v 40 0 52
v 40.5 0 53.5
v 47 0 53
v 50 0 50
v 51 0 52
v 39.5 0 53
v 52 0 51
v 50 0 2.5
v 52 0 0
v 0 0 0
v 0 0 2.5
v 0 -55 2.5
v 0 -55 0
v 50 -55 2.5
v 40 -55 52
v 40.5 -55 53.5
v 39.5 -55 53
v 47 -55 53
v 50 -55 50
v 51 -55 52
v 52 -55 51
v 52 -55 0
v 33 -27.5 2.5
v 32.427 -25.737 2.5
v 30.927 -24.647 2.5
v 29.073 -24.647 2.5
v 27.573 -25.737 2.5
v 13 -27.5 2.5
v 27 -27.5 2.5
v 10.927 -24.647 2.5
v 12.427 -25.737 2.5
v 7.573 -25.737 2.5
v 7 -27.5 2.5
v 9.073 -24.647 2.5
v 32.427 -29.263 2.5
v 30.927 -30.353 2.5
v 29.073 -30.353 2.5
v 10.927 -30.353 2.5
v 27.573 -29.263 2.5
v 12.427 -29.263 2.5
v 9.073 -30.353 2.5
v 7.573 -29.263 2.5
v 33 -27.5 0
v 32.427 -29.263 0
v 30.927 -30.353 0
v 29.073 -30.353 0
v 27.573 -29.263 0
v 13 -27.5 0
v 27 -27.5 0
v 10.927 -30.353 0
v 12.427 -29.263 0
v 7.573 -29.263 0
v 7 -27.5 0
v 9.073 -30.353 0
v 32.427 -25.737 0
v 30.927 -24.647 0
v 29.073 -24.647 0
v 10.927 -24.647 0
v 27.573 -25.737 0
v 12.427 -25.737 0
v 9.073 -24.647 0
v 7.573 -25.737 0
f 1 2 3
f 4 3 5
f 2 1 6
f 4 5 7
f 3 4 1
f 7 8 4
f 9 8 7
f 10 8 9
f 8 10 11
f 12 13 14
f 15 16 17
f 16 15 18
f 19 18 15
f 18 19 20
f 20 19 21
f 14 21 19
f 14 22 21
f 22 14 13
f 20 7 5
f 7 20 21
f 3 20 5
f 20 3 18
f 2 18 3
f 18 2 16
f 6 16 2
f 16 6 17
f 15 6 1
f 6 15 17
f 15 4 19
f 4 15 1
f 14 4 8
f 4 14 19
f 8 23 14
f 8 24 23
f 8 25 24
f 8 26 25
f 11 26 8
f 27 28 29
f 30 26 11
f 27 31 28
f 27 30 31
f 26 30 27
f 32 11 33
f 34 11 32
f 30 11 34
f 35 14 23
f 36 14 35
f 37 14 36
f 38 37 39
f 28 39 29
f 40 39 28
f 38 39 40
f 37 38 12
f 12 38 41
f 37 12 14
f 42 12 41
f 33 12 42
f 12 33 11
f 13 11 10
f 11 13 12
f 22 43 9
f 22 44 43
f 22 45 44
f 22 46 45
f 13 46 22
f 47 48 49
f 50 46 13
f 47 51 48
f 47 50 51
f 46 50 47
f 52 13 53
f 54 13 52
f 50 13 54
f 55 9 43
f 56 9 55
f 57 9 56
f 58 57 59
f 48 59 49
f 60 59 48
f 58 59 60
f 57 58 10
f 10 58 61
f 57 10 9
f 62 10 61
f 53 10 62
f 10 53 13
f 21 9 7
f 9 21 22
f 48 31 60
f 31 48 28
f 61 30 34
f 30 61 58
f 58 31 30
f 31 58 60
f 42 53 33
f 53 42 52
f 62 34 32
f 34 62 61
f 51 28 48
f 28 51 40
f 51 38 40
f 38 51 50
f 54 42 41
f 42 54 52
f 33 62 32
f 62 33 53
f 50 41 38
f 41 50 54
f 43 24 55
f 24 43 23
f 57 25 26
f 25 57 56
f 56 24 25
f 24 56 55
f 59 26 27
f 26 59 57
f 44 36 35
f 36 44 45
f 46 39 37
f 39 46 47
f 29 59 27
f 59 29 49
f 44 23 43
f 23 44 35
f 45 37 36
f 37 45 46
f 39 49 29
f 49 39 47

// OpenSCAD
difference() {
    rotate([90,0,0])
    linear_extrude(55)
    polygon([[0,0],[0,2.5],[50,2.5],[50,50],[40,52],[39.5,53],[40.5,53.5],[47,53],[51,52],[52,51],[52,0]]);    

    
    translate([10,-27.5,-1])
    cylinder(r=3,h=4);

    translate([30,-27.5,-1])
    cylinder(r=3,h=4);
    
    
}
